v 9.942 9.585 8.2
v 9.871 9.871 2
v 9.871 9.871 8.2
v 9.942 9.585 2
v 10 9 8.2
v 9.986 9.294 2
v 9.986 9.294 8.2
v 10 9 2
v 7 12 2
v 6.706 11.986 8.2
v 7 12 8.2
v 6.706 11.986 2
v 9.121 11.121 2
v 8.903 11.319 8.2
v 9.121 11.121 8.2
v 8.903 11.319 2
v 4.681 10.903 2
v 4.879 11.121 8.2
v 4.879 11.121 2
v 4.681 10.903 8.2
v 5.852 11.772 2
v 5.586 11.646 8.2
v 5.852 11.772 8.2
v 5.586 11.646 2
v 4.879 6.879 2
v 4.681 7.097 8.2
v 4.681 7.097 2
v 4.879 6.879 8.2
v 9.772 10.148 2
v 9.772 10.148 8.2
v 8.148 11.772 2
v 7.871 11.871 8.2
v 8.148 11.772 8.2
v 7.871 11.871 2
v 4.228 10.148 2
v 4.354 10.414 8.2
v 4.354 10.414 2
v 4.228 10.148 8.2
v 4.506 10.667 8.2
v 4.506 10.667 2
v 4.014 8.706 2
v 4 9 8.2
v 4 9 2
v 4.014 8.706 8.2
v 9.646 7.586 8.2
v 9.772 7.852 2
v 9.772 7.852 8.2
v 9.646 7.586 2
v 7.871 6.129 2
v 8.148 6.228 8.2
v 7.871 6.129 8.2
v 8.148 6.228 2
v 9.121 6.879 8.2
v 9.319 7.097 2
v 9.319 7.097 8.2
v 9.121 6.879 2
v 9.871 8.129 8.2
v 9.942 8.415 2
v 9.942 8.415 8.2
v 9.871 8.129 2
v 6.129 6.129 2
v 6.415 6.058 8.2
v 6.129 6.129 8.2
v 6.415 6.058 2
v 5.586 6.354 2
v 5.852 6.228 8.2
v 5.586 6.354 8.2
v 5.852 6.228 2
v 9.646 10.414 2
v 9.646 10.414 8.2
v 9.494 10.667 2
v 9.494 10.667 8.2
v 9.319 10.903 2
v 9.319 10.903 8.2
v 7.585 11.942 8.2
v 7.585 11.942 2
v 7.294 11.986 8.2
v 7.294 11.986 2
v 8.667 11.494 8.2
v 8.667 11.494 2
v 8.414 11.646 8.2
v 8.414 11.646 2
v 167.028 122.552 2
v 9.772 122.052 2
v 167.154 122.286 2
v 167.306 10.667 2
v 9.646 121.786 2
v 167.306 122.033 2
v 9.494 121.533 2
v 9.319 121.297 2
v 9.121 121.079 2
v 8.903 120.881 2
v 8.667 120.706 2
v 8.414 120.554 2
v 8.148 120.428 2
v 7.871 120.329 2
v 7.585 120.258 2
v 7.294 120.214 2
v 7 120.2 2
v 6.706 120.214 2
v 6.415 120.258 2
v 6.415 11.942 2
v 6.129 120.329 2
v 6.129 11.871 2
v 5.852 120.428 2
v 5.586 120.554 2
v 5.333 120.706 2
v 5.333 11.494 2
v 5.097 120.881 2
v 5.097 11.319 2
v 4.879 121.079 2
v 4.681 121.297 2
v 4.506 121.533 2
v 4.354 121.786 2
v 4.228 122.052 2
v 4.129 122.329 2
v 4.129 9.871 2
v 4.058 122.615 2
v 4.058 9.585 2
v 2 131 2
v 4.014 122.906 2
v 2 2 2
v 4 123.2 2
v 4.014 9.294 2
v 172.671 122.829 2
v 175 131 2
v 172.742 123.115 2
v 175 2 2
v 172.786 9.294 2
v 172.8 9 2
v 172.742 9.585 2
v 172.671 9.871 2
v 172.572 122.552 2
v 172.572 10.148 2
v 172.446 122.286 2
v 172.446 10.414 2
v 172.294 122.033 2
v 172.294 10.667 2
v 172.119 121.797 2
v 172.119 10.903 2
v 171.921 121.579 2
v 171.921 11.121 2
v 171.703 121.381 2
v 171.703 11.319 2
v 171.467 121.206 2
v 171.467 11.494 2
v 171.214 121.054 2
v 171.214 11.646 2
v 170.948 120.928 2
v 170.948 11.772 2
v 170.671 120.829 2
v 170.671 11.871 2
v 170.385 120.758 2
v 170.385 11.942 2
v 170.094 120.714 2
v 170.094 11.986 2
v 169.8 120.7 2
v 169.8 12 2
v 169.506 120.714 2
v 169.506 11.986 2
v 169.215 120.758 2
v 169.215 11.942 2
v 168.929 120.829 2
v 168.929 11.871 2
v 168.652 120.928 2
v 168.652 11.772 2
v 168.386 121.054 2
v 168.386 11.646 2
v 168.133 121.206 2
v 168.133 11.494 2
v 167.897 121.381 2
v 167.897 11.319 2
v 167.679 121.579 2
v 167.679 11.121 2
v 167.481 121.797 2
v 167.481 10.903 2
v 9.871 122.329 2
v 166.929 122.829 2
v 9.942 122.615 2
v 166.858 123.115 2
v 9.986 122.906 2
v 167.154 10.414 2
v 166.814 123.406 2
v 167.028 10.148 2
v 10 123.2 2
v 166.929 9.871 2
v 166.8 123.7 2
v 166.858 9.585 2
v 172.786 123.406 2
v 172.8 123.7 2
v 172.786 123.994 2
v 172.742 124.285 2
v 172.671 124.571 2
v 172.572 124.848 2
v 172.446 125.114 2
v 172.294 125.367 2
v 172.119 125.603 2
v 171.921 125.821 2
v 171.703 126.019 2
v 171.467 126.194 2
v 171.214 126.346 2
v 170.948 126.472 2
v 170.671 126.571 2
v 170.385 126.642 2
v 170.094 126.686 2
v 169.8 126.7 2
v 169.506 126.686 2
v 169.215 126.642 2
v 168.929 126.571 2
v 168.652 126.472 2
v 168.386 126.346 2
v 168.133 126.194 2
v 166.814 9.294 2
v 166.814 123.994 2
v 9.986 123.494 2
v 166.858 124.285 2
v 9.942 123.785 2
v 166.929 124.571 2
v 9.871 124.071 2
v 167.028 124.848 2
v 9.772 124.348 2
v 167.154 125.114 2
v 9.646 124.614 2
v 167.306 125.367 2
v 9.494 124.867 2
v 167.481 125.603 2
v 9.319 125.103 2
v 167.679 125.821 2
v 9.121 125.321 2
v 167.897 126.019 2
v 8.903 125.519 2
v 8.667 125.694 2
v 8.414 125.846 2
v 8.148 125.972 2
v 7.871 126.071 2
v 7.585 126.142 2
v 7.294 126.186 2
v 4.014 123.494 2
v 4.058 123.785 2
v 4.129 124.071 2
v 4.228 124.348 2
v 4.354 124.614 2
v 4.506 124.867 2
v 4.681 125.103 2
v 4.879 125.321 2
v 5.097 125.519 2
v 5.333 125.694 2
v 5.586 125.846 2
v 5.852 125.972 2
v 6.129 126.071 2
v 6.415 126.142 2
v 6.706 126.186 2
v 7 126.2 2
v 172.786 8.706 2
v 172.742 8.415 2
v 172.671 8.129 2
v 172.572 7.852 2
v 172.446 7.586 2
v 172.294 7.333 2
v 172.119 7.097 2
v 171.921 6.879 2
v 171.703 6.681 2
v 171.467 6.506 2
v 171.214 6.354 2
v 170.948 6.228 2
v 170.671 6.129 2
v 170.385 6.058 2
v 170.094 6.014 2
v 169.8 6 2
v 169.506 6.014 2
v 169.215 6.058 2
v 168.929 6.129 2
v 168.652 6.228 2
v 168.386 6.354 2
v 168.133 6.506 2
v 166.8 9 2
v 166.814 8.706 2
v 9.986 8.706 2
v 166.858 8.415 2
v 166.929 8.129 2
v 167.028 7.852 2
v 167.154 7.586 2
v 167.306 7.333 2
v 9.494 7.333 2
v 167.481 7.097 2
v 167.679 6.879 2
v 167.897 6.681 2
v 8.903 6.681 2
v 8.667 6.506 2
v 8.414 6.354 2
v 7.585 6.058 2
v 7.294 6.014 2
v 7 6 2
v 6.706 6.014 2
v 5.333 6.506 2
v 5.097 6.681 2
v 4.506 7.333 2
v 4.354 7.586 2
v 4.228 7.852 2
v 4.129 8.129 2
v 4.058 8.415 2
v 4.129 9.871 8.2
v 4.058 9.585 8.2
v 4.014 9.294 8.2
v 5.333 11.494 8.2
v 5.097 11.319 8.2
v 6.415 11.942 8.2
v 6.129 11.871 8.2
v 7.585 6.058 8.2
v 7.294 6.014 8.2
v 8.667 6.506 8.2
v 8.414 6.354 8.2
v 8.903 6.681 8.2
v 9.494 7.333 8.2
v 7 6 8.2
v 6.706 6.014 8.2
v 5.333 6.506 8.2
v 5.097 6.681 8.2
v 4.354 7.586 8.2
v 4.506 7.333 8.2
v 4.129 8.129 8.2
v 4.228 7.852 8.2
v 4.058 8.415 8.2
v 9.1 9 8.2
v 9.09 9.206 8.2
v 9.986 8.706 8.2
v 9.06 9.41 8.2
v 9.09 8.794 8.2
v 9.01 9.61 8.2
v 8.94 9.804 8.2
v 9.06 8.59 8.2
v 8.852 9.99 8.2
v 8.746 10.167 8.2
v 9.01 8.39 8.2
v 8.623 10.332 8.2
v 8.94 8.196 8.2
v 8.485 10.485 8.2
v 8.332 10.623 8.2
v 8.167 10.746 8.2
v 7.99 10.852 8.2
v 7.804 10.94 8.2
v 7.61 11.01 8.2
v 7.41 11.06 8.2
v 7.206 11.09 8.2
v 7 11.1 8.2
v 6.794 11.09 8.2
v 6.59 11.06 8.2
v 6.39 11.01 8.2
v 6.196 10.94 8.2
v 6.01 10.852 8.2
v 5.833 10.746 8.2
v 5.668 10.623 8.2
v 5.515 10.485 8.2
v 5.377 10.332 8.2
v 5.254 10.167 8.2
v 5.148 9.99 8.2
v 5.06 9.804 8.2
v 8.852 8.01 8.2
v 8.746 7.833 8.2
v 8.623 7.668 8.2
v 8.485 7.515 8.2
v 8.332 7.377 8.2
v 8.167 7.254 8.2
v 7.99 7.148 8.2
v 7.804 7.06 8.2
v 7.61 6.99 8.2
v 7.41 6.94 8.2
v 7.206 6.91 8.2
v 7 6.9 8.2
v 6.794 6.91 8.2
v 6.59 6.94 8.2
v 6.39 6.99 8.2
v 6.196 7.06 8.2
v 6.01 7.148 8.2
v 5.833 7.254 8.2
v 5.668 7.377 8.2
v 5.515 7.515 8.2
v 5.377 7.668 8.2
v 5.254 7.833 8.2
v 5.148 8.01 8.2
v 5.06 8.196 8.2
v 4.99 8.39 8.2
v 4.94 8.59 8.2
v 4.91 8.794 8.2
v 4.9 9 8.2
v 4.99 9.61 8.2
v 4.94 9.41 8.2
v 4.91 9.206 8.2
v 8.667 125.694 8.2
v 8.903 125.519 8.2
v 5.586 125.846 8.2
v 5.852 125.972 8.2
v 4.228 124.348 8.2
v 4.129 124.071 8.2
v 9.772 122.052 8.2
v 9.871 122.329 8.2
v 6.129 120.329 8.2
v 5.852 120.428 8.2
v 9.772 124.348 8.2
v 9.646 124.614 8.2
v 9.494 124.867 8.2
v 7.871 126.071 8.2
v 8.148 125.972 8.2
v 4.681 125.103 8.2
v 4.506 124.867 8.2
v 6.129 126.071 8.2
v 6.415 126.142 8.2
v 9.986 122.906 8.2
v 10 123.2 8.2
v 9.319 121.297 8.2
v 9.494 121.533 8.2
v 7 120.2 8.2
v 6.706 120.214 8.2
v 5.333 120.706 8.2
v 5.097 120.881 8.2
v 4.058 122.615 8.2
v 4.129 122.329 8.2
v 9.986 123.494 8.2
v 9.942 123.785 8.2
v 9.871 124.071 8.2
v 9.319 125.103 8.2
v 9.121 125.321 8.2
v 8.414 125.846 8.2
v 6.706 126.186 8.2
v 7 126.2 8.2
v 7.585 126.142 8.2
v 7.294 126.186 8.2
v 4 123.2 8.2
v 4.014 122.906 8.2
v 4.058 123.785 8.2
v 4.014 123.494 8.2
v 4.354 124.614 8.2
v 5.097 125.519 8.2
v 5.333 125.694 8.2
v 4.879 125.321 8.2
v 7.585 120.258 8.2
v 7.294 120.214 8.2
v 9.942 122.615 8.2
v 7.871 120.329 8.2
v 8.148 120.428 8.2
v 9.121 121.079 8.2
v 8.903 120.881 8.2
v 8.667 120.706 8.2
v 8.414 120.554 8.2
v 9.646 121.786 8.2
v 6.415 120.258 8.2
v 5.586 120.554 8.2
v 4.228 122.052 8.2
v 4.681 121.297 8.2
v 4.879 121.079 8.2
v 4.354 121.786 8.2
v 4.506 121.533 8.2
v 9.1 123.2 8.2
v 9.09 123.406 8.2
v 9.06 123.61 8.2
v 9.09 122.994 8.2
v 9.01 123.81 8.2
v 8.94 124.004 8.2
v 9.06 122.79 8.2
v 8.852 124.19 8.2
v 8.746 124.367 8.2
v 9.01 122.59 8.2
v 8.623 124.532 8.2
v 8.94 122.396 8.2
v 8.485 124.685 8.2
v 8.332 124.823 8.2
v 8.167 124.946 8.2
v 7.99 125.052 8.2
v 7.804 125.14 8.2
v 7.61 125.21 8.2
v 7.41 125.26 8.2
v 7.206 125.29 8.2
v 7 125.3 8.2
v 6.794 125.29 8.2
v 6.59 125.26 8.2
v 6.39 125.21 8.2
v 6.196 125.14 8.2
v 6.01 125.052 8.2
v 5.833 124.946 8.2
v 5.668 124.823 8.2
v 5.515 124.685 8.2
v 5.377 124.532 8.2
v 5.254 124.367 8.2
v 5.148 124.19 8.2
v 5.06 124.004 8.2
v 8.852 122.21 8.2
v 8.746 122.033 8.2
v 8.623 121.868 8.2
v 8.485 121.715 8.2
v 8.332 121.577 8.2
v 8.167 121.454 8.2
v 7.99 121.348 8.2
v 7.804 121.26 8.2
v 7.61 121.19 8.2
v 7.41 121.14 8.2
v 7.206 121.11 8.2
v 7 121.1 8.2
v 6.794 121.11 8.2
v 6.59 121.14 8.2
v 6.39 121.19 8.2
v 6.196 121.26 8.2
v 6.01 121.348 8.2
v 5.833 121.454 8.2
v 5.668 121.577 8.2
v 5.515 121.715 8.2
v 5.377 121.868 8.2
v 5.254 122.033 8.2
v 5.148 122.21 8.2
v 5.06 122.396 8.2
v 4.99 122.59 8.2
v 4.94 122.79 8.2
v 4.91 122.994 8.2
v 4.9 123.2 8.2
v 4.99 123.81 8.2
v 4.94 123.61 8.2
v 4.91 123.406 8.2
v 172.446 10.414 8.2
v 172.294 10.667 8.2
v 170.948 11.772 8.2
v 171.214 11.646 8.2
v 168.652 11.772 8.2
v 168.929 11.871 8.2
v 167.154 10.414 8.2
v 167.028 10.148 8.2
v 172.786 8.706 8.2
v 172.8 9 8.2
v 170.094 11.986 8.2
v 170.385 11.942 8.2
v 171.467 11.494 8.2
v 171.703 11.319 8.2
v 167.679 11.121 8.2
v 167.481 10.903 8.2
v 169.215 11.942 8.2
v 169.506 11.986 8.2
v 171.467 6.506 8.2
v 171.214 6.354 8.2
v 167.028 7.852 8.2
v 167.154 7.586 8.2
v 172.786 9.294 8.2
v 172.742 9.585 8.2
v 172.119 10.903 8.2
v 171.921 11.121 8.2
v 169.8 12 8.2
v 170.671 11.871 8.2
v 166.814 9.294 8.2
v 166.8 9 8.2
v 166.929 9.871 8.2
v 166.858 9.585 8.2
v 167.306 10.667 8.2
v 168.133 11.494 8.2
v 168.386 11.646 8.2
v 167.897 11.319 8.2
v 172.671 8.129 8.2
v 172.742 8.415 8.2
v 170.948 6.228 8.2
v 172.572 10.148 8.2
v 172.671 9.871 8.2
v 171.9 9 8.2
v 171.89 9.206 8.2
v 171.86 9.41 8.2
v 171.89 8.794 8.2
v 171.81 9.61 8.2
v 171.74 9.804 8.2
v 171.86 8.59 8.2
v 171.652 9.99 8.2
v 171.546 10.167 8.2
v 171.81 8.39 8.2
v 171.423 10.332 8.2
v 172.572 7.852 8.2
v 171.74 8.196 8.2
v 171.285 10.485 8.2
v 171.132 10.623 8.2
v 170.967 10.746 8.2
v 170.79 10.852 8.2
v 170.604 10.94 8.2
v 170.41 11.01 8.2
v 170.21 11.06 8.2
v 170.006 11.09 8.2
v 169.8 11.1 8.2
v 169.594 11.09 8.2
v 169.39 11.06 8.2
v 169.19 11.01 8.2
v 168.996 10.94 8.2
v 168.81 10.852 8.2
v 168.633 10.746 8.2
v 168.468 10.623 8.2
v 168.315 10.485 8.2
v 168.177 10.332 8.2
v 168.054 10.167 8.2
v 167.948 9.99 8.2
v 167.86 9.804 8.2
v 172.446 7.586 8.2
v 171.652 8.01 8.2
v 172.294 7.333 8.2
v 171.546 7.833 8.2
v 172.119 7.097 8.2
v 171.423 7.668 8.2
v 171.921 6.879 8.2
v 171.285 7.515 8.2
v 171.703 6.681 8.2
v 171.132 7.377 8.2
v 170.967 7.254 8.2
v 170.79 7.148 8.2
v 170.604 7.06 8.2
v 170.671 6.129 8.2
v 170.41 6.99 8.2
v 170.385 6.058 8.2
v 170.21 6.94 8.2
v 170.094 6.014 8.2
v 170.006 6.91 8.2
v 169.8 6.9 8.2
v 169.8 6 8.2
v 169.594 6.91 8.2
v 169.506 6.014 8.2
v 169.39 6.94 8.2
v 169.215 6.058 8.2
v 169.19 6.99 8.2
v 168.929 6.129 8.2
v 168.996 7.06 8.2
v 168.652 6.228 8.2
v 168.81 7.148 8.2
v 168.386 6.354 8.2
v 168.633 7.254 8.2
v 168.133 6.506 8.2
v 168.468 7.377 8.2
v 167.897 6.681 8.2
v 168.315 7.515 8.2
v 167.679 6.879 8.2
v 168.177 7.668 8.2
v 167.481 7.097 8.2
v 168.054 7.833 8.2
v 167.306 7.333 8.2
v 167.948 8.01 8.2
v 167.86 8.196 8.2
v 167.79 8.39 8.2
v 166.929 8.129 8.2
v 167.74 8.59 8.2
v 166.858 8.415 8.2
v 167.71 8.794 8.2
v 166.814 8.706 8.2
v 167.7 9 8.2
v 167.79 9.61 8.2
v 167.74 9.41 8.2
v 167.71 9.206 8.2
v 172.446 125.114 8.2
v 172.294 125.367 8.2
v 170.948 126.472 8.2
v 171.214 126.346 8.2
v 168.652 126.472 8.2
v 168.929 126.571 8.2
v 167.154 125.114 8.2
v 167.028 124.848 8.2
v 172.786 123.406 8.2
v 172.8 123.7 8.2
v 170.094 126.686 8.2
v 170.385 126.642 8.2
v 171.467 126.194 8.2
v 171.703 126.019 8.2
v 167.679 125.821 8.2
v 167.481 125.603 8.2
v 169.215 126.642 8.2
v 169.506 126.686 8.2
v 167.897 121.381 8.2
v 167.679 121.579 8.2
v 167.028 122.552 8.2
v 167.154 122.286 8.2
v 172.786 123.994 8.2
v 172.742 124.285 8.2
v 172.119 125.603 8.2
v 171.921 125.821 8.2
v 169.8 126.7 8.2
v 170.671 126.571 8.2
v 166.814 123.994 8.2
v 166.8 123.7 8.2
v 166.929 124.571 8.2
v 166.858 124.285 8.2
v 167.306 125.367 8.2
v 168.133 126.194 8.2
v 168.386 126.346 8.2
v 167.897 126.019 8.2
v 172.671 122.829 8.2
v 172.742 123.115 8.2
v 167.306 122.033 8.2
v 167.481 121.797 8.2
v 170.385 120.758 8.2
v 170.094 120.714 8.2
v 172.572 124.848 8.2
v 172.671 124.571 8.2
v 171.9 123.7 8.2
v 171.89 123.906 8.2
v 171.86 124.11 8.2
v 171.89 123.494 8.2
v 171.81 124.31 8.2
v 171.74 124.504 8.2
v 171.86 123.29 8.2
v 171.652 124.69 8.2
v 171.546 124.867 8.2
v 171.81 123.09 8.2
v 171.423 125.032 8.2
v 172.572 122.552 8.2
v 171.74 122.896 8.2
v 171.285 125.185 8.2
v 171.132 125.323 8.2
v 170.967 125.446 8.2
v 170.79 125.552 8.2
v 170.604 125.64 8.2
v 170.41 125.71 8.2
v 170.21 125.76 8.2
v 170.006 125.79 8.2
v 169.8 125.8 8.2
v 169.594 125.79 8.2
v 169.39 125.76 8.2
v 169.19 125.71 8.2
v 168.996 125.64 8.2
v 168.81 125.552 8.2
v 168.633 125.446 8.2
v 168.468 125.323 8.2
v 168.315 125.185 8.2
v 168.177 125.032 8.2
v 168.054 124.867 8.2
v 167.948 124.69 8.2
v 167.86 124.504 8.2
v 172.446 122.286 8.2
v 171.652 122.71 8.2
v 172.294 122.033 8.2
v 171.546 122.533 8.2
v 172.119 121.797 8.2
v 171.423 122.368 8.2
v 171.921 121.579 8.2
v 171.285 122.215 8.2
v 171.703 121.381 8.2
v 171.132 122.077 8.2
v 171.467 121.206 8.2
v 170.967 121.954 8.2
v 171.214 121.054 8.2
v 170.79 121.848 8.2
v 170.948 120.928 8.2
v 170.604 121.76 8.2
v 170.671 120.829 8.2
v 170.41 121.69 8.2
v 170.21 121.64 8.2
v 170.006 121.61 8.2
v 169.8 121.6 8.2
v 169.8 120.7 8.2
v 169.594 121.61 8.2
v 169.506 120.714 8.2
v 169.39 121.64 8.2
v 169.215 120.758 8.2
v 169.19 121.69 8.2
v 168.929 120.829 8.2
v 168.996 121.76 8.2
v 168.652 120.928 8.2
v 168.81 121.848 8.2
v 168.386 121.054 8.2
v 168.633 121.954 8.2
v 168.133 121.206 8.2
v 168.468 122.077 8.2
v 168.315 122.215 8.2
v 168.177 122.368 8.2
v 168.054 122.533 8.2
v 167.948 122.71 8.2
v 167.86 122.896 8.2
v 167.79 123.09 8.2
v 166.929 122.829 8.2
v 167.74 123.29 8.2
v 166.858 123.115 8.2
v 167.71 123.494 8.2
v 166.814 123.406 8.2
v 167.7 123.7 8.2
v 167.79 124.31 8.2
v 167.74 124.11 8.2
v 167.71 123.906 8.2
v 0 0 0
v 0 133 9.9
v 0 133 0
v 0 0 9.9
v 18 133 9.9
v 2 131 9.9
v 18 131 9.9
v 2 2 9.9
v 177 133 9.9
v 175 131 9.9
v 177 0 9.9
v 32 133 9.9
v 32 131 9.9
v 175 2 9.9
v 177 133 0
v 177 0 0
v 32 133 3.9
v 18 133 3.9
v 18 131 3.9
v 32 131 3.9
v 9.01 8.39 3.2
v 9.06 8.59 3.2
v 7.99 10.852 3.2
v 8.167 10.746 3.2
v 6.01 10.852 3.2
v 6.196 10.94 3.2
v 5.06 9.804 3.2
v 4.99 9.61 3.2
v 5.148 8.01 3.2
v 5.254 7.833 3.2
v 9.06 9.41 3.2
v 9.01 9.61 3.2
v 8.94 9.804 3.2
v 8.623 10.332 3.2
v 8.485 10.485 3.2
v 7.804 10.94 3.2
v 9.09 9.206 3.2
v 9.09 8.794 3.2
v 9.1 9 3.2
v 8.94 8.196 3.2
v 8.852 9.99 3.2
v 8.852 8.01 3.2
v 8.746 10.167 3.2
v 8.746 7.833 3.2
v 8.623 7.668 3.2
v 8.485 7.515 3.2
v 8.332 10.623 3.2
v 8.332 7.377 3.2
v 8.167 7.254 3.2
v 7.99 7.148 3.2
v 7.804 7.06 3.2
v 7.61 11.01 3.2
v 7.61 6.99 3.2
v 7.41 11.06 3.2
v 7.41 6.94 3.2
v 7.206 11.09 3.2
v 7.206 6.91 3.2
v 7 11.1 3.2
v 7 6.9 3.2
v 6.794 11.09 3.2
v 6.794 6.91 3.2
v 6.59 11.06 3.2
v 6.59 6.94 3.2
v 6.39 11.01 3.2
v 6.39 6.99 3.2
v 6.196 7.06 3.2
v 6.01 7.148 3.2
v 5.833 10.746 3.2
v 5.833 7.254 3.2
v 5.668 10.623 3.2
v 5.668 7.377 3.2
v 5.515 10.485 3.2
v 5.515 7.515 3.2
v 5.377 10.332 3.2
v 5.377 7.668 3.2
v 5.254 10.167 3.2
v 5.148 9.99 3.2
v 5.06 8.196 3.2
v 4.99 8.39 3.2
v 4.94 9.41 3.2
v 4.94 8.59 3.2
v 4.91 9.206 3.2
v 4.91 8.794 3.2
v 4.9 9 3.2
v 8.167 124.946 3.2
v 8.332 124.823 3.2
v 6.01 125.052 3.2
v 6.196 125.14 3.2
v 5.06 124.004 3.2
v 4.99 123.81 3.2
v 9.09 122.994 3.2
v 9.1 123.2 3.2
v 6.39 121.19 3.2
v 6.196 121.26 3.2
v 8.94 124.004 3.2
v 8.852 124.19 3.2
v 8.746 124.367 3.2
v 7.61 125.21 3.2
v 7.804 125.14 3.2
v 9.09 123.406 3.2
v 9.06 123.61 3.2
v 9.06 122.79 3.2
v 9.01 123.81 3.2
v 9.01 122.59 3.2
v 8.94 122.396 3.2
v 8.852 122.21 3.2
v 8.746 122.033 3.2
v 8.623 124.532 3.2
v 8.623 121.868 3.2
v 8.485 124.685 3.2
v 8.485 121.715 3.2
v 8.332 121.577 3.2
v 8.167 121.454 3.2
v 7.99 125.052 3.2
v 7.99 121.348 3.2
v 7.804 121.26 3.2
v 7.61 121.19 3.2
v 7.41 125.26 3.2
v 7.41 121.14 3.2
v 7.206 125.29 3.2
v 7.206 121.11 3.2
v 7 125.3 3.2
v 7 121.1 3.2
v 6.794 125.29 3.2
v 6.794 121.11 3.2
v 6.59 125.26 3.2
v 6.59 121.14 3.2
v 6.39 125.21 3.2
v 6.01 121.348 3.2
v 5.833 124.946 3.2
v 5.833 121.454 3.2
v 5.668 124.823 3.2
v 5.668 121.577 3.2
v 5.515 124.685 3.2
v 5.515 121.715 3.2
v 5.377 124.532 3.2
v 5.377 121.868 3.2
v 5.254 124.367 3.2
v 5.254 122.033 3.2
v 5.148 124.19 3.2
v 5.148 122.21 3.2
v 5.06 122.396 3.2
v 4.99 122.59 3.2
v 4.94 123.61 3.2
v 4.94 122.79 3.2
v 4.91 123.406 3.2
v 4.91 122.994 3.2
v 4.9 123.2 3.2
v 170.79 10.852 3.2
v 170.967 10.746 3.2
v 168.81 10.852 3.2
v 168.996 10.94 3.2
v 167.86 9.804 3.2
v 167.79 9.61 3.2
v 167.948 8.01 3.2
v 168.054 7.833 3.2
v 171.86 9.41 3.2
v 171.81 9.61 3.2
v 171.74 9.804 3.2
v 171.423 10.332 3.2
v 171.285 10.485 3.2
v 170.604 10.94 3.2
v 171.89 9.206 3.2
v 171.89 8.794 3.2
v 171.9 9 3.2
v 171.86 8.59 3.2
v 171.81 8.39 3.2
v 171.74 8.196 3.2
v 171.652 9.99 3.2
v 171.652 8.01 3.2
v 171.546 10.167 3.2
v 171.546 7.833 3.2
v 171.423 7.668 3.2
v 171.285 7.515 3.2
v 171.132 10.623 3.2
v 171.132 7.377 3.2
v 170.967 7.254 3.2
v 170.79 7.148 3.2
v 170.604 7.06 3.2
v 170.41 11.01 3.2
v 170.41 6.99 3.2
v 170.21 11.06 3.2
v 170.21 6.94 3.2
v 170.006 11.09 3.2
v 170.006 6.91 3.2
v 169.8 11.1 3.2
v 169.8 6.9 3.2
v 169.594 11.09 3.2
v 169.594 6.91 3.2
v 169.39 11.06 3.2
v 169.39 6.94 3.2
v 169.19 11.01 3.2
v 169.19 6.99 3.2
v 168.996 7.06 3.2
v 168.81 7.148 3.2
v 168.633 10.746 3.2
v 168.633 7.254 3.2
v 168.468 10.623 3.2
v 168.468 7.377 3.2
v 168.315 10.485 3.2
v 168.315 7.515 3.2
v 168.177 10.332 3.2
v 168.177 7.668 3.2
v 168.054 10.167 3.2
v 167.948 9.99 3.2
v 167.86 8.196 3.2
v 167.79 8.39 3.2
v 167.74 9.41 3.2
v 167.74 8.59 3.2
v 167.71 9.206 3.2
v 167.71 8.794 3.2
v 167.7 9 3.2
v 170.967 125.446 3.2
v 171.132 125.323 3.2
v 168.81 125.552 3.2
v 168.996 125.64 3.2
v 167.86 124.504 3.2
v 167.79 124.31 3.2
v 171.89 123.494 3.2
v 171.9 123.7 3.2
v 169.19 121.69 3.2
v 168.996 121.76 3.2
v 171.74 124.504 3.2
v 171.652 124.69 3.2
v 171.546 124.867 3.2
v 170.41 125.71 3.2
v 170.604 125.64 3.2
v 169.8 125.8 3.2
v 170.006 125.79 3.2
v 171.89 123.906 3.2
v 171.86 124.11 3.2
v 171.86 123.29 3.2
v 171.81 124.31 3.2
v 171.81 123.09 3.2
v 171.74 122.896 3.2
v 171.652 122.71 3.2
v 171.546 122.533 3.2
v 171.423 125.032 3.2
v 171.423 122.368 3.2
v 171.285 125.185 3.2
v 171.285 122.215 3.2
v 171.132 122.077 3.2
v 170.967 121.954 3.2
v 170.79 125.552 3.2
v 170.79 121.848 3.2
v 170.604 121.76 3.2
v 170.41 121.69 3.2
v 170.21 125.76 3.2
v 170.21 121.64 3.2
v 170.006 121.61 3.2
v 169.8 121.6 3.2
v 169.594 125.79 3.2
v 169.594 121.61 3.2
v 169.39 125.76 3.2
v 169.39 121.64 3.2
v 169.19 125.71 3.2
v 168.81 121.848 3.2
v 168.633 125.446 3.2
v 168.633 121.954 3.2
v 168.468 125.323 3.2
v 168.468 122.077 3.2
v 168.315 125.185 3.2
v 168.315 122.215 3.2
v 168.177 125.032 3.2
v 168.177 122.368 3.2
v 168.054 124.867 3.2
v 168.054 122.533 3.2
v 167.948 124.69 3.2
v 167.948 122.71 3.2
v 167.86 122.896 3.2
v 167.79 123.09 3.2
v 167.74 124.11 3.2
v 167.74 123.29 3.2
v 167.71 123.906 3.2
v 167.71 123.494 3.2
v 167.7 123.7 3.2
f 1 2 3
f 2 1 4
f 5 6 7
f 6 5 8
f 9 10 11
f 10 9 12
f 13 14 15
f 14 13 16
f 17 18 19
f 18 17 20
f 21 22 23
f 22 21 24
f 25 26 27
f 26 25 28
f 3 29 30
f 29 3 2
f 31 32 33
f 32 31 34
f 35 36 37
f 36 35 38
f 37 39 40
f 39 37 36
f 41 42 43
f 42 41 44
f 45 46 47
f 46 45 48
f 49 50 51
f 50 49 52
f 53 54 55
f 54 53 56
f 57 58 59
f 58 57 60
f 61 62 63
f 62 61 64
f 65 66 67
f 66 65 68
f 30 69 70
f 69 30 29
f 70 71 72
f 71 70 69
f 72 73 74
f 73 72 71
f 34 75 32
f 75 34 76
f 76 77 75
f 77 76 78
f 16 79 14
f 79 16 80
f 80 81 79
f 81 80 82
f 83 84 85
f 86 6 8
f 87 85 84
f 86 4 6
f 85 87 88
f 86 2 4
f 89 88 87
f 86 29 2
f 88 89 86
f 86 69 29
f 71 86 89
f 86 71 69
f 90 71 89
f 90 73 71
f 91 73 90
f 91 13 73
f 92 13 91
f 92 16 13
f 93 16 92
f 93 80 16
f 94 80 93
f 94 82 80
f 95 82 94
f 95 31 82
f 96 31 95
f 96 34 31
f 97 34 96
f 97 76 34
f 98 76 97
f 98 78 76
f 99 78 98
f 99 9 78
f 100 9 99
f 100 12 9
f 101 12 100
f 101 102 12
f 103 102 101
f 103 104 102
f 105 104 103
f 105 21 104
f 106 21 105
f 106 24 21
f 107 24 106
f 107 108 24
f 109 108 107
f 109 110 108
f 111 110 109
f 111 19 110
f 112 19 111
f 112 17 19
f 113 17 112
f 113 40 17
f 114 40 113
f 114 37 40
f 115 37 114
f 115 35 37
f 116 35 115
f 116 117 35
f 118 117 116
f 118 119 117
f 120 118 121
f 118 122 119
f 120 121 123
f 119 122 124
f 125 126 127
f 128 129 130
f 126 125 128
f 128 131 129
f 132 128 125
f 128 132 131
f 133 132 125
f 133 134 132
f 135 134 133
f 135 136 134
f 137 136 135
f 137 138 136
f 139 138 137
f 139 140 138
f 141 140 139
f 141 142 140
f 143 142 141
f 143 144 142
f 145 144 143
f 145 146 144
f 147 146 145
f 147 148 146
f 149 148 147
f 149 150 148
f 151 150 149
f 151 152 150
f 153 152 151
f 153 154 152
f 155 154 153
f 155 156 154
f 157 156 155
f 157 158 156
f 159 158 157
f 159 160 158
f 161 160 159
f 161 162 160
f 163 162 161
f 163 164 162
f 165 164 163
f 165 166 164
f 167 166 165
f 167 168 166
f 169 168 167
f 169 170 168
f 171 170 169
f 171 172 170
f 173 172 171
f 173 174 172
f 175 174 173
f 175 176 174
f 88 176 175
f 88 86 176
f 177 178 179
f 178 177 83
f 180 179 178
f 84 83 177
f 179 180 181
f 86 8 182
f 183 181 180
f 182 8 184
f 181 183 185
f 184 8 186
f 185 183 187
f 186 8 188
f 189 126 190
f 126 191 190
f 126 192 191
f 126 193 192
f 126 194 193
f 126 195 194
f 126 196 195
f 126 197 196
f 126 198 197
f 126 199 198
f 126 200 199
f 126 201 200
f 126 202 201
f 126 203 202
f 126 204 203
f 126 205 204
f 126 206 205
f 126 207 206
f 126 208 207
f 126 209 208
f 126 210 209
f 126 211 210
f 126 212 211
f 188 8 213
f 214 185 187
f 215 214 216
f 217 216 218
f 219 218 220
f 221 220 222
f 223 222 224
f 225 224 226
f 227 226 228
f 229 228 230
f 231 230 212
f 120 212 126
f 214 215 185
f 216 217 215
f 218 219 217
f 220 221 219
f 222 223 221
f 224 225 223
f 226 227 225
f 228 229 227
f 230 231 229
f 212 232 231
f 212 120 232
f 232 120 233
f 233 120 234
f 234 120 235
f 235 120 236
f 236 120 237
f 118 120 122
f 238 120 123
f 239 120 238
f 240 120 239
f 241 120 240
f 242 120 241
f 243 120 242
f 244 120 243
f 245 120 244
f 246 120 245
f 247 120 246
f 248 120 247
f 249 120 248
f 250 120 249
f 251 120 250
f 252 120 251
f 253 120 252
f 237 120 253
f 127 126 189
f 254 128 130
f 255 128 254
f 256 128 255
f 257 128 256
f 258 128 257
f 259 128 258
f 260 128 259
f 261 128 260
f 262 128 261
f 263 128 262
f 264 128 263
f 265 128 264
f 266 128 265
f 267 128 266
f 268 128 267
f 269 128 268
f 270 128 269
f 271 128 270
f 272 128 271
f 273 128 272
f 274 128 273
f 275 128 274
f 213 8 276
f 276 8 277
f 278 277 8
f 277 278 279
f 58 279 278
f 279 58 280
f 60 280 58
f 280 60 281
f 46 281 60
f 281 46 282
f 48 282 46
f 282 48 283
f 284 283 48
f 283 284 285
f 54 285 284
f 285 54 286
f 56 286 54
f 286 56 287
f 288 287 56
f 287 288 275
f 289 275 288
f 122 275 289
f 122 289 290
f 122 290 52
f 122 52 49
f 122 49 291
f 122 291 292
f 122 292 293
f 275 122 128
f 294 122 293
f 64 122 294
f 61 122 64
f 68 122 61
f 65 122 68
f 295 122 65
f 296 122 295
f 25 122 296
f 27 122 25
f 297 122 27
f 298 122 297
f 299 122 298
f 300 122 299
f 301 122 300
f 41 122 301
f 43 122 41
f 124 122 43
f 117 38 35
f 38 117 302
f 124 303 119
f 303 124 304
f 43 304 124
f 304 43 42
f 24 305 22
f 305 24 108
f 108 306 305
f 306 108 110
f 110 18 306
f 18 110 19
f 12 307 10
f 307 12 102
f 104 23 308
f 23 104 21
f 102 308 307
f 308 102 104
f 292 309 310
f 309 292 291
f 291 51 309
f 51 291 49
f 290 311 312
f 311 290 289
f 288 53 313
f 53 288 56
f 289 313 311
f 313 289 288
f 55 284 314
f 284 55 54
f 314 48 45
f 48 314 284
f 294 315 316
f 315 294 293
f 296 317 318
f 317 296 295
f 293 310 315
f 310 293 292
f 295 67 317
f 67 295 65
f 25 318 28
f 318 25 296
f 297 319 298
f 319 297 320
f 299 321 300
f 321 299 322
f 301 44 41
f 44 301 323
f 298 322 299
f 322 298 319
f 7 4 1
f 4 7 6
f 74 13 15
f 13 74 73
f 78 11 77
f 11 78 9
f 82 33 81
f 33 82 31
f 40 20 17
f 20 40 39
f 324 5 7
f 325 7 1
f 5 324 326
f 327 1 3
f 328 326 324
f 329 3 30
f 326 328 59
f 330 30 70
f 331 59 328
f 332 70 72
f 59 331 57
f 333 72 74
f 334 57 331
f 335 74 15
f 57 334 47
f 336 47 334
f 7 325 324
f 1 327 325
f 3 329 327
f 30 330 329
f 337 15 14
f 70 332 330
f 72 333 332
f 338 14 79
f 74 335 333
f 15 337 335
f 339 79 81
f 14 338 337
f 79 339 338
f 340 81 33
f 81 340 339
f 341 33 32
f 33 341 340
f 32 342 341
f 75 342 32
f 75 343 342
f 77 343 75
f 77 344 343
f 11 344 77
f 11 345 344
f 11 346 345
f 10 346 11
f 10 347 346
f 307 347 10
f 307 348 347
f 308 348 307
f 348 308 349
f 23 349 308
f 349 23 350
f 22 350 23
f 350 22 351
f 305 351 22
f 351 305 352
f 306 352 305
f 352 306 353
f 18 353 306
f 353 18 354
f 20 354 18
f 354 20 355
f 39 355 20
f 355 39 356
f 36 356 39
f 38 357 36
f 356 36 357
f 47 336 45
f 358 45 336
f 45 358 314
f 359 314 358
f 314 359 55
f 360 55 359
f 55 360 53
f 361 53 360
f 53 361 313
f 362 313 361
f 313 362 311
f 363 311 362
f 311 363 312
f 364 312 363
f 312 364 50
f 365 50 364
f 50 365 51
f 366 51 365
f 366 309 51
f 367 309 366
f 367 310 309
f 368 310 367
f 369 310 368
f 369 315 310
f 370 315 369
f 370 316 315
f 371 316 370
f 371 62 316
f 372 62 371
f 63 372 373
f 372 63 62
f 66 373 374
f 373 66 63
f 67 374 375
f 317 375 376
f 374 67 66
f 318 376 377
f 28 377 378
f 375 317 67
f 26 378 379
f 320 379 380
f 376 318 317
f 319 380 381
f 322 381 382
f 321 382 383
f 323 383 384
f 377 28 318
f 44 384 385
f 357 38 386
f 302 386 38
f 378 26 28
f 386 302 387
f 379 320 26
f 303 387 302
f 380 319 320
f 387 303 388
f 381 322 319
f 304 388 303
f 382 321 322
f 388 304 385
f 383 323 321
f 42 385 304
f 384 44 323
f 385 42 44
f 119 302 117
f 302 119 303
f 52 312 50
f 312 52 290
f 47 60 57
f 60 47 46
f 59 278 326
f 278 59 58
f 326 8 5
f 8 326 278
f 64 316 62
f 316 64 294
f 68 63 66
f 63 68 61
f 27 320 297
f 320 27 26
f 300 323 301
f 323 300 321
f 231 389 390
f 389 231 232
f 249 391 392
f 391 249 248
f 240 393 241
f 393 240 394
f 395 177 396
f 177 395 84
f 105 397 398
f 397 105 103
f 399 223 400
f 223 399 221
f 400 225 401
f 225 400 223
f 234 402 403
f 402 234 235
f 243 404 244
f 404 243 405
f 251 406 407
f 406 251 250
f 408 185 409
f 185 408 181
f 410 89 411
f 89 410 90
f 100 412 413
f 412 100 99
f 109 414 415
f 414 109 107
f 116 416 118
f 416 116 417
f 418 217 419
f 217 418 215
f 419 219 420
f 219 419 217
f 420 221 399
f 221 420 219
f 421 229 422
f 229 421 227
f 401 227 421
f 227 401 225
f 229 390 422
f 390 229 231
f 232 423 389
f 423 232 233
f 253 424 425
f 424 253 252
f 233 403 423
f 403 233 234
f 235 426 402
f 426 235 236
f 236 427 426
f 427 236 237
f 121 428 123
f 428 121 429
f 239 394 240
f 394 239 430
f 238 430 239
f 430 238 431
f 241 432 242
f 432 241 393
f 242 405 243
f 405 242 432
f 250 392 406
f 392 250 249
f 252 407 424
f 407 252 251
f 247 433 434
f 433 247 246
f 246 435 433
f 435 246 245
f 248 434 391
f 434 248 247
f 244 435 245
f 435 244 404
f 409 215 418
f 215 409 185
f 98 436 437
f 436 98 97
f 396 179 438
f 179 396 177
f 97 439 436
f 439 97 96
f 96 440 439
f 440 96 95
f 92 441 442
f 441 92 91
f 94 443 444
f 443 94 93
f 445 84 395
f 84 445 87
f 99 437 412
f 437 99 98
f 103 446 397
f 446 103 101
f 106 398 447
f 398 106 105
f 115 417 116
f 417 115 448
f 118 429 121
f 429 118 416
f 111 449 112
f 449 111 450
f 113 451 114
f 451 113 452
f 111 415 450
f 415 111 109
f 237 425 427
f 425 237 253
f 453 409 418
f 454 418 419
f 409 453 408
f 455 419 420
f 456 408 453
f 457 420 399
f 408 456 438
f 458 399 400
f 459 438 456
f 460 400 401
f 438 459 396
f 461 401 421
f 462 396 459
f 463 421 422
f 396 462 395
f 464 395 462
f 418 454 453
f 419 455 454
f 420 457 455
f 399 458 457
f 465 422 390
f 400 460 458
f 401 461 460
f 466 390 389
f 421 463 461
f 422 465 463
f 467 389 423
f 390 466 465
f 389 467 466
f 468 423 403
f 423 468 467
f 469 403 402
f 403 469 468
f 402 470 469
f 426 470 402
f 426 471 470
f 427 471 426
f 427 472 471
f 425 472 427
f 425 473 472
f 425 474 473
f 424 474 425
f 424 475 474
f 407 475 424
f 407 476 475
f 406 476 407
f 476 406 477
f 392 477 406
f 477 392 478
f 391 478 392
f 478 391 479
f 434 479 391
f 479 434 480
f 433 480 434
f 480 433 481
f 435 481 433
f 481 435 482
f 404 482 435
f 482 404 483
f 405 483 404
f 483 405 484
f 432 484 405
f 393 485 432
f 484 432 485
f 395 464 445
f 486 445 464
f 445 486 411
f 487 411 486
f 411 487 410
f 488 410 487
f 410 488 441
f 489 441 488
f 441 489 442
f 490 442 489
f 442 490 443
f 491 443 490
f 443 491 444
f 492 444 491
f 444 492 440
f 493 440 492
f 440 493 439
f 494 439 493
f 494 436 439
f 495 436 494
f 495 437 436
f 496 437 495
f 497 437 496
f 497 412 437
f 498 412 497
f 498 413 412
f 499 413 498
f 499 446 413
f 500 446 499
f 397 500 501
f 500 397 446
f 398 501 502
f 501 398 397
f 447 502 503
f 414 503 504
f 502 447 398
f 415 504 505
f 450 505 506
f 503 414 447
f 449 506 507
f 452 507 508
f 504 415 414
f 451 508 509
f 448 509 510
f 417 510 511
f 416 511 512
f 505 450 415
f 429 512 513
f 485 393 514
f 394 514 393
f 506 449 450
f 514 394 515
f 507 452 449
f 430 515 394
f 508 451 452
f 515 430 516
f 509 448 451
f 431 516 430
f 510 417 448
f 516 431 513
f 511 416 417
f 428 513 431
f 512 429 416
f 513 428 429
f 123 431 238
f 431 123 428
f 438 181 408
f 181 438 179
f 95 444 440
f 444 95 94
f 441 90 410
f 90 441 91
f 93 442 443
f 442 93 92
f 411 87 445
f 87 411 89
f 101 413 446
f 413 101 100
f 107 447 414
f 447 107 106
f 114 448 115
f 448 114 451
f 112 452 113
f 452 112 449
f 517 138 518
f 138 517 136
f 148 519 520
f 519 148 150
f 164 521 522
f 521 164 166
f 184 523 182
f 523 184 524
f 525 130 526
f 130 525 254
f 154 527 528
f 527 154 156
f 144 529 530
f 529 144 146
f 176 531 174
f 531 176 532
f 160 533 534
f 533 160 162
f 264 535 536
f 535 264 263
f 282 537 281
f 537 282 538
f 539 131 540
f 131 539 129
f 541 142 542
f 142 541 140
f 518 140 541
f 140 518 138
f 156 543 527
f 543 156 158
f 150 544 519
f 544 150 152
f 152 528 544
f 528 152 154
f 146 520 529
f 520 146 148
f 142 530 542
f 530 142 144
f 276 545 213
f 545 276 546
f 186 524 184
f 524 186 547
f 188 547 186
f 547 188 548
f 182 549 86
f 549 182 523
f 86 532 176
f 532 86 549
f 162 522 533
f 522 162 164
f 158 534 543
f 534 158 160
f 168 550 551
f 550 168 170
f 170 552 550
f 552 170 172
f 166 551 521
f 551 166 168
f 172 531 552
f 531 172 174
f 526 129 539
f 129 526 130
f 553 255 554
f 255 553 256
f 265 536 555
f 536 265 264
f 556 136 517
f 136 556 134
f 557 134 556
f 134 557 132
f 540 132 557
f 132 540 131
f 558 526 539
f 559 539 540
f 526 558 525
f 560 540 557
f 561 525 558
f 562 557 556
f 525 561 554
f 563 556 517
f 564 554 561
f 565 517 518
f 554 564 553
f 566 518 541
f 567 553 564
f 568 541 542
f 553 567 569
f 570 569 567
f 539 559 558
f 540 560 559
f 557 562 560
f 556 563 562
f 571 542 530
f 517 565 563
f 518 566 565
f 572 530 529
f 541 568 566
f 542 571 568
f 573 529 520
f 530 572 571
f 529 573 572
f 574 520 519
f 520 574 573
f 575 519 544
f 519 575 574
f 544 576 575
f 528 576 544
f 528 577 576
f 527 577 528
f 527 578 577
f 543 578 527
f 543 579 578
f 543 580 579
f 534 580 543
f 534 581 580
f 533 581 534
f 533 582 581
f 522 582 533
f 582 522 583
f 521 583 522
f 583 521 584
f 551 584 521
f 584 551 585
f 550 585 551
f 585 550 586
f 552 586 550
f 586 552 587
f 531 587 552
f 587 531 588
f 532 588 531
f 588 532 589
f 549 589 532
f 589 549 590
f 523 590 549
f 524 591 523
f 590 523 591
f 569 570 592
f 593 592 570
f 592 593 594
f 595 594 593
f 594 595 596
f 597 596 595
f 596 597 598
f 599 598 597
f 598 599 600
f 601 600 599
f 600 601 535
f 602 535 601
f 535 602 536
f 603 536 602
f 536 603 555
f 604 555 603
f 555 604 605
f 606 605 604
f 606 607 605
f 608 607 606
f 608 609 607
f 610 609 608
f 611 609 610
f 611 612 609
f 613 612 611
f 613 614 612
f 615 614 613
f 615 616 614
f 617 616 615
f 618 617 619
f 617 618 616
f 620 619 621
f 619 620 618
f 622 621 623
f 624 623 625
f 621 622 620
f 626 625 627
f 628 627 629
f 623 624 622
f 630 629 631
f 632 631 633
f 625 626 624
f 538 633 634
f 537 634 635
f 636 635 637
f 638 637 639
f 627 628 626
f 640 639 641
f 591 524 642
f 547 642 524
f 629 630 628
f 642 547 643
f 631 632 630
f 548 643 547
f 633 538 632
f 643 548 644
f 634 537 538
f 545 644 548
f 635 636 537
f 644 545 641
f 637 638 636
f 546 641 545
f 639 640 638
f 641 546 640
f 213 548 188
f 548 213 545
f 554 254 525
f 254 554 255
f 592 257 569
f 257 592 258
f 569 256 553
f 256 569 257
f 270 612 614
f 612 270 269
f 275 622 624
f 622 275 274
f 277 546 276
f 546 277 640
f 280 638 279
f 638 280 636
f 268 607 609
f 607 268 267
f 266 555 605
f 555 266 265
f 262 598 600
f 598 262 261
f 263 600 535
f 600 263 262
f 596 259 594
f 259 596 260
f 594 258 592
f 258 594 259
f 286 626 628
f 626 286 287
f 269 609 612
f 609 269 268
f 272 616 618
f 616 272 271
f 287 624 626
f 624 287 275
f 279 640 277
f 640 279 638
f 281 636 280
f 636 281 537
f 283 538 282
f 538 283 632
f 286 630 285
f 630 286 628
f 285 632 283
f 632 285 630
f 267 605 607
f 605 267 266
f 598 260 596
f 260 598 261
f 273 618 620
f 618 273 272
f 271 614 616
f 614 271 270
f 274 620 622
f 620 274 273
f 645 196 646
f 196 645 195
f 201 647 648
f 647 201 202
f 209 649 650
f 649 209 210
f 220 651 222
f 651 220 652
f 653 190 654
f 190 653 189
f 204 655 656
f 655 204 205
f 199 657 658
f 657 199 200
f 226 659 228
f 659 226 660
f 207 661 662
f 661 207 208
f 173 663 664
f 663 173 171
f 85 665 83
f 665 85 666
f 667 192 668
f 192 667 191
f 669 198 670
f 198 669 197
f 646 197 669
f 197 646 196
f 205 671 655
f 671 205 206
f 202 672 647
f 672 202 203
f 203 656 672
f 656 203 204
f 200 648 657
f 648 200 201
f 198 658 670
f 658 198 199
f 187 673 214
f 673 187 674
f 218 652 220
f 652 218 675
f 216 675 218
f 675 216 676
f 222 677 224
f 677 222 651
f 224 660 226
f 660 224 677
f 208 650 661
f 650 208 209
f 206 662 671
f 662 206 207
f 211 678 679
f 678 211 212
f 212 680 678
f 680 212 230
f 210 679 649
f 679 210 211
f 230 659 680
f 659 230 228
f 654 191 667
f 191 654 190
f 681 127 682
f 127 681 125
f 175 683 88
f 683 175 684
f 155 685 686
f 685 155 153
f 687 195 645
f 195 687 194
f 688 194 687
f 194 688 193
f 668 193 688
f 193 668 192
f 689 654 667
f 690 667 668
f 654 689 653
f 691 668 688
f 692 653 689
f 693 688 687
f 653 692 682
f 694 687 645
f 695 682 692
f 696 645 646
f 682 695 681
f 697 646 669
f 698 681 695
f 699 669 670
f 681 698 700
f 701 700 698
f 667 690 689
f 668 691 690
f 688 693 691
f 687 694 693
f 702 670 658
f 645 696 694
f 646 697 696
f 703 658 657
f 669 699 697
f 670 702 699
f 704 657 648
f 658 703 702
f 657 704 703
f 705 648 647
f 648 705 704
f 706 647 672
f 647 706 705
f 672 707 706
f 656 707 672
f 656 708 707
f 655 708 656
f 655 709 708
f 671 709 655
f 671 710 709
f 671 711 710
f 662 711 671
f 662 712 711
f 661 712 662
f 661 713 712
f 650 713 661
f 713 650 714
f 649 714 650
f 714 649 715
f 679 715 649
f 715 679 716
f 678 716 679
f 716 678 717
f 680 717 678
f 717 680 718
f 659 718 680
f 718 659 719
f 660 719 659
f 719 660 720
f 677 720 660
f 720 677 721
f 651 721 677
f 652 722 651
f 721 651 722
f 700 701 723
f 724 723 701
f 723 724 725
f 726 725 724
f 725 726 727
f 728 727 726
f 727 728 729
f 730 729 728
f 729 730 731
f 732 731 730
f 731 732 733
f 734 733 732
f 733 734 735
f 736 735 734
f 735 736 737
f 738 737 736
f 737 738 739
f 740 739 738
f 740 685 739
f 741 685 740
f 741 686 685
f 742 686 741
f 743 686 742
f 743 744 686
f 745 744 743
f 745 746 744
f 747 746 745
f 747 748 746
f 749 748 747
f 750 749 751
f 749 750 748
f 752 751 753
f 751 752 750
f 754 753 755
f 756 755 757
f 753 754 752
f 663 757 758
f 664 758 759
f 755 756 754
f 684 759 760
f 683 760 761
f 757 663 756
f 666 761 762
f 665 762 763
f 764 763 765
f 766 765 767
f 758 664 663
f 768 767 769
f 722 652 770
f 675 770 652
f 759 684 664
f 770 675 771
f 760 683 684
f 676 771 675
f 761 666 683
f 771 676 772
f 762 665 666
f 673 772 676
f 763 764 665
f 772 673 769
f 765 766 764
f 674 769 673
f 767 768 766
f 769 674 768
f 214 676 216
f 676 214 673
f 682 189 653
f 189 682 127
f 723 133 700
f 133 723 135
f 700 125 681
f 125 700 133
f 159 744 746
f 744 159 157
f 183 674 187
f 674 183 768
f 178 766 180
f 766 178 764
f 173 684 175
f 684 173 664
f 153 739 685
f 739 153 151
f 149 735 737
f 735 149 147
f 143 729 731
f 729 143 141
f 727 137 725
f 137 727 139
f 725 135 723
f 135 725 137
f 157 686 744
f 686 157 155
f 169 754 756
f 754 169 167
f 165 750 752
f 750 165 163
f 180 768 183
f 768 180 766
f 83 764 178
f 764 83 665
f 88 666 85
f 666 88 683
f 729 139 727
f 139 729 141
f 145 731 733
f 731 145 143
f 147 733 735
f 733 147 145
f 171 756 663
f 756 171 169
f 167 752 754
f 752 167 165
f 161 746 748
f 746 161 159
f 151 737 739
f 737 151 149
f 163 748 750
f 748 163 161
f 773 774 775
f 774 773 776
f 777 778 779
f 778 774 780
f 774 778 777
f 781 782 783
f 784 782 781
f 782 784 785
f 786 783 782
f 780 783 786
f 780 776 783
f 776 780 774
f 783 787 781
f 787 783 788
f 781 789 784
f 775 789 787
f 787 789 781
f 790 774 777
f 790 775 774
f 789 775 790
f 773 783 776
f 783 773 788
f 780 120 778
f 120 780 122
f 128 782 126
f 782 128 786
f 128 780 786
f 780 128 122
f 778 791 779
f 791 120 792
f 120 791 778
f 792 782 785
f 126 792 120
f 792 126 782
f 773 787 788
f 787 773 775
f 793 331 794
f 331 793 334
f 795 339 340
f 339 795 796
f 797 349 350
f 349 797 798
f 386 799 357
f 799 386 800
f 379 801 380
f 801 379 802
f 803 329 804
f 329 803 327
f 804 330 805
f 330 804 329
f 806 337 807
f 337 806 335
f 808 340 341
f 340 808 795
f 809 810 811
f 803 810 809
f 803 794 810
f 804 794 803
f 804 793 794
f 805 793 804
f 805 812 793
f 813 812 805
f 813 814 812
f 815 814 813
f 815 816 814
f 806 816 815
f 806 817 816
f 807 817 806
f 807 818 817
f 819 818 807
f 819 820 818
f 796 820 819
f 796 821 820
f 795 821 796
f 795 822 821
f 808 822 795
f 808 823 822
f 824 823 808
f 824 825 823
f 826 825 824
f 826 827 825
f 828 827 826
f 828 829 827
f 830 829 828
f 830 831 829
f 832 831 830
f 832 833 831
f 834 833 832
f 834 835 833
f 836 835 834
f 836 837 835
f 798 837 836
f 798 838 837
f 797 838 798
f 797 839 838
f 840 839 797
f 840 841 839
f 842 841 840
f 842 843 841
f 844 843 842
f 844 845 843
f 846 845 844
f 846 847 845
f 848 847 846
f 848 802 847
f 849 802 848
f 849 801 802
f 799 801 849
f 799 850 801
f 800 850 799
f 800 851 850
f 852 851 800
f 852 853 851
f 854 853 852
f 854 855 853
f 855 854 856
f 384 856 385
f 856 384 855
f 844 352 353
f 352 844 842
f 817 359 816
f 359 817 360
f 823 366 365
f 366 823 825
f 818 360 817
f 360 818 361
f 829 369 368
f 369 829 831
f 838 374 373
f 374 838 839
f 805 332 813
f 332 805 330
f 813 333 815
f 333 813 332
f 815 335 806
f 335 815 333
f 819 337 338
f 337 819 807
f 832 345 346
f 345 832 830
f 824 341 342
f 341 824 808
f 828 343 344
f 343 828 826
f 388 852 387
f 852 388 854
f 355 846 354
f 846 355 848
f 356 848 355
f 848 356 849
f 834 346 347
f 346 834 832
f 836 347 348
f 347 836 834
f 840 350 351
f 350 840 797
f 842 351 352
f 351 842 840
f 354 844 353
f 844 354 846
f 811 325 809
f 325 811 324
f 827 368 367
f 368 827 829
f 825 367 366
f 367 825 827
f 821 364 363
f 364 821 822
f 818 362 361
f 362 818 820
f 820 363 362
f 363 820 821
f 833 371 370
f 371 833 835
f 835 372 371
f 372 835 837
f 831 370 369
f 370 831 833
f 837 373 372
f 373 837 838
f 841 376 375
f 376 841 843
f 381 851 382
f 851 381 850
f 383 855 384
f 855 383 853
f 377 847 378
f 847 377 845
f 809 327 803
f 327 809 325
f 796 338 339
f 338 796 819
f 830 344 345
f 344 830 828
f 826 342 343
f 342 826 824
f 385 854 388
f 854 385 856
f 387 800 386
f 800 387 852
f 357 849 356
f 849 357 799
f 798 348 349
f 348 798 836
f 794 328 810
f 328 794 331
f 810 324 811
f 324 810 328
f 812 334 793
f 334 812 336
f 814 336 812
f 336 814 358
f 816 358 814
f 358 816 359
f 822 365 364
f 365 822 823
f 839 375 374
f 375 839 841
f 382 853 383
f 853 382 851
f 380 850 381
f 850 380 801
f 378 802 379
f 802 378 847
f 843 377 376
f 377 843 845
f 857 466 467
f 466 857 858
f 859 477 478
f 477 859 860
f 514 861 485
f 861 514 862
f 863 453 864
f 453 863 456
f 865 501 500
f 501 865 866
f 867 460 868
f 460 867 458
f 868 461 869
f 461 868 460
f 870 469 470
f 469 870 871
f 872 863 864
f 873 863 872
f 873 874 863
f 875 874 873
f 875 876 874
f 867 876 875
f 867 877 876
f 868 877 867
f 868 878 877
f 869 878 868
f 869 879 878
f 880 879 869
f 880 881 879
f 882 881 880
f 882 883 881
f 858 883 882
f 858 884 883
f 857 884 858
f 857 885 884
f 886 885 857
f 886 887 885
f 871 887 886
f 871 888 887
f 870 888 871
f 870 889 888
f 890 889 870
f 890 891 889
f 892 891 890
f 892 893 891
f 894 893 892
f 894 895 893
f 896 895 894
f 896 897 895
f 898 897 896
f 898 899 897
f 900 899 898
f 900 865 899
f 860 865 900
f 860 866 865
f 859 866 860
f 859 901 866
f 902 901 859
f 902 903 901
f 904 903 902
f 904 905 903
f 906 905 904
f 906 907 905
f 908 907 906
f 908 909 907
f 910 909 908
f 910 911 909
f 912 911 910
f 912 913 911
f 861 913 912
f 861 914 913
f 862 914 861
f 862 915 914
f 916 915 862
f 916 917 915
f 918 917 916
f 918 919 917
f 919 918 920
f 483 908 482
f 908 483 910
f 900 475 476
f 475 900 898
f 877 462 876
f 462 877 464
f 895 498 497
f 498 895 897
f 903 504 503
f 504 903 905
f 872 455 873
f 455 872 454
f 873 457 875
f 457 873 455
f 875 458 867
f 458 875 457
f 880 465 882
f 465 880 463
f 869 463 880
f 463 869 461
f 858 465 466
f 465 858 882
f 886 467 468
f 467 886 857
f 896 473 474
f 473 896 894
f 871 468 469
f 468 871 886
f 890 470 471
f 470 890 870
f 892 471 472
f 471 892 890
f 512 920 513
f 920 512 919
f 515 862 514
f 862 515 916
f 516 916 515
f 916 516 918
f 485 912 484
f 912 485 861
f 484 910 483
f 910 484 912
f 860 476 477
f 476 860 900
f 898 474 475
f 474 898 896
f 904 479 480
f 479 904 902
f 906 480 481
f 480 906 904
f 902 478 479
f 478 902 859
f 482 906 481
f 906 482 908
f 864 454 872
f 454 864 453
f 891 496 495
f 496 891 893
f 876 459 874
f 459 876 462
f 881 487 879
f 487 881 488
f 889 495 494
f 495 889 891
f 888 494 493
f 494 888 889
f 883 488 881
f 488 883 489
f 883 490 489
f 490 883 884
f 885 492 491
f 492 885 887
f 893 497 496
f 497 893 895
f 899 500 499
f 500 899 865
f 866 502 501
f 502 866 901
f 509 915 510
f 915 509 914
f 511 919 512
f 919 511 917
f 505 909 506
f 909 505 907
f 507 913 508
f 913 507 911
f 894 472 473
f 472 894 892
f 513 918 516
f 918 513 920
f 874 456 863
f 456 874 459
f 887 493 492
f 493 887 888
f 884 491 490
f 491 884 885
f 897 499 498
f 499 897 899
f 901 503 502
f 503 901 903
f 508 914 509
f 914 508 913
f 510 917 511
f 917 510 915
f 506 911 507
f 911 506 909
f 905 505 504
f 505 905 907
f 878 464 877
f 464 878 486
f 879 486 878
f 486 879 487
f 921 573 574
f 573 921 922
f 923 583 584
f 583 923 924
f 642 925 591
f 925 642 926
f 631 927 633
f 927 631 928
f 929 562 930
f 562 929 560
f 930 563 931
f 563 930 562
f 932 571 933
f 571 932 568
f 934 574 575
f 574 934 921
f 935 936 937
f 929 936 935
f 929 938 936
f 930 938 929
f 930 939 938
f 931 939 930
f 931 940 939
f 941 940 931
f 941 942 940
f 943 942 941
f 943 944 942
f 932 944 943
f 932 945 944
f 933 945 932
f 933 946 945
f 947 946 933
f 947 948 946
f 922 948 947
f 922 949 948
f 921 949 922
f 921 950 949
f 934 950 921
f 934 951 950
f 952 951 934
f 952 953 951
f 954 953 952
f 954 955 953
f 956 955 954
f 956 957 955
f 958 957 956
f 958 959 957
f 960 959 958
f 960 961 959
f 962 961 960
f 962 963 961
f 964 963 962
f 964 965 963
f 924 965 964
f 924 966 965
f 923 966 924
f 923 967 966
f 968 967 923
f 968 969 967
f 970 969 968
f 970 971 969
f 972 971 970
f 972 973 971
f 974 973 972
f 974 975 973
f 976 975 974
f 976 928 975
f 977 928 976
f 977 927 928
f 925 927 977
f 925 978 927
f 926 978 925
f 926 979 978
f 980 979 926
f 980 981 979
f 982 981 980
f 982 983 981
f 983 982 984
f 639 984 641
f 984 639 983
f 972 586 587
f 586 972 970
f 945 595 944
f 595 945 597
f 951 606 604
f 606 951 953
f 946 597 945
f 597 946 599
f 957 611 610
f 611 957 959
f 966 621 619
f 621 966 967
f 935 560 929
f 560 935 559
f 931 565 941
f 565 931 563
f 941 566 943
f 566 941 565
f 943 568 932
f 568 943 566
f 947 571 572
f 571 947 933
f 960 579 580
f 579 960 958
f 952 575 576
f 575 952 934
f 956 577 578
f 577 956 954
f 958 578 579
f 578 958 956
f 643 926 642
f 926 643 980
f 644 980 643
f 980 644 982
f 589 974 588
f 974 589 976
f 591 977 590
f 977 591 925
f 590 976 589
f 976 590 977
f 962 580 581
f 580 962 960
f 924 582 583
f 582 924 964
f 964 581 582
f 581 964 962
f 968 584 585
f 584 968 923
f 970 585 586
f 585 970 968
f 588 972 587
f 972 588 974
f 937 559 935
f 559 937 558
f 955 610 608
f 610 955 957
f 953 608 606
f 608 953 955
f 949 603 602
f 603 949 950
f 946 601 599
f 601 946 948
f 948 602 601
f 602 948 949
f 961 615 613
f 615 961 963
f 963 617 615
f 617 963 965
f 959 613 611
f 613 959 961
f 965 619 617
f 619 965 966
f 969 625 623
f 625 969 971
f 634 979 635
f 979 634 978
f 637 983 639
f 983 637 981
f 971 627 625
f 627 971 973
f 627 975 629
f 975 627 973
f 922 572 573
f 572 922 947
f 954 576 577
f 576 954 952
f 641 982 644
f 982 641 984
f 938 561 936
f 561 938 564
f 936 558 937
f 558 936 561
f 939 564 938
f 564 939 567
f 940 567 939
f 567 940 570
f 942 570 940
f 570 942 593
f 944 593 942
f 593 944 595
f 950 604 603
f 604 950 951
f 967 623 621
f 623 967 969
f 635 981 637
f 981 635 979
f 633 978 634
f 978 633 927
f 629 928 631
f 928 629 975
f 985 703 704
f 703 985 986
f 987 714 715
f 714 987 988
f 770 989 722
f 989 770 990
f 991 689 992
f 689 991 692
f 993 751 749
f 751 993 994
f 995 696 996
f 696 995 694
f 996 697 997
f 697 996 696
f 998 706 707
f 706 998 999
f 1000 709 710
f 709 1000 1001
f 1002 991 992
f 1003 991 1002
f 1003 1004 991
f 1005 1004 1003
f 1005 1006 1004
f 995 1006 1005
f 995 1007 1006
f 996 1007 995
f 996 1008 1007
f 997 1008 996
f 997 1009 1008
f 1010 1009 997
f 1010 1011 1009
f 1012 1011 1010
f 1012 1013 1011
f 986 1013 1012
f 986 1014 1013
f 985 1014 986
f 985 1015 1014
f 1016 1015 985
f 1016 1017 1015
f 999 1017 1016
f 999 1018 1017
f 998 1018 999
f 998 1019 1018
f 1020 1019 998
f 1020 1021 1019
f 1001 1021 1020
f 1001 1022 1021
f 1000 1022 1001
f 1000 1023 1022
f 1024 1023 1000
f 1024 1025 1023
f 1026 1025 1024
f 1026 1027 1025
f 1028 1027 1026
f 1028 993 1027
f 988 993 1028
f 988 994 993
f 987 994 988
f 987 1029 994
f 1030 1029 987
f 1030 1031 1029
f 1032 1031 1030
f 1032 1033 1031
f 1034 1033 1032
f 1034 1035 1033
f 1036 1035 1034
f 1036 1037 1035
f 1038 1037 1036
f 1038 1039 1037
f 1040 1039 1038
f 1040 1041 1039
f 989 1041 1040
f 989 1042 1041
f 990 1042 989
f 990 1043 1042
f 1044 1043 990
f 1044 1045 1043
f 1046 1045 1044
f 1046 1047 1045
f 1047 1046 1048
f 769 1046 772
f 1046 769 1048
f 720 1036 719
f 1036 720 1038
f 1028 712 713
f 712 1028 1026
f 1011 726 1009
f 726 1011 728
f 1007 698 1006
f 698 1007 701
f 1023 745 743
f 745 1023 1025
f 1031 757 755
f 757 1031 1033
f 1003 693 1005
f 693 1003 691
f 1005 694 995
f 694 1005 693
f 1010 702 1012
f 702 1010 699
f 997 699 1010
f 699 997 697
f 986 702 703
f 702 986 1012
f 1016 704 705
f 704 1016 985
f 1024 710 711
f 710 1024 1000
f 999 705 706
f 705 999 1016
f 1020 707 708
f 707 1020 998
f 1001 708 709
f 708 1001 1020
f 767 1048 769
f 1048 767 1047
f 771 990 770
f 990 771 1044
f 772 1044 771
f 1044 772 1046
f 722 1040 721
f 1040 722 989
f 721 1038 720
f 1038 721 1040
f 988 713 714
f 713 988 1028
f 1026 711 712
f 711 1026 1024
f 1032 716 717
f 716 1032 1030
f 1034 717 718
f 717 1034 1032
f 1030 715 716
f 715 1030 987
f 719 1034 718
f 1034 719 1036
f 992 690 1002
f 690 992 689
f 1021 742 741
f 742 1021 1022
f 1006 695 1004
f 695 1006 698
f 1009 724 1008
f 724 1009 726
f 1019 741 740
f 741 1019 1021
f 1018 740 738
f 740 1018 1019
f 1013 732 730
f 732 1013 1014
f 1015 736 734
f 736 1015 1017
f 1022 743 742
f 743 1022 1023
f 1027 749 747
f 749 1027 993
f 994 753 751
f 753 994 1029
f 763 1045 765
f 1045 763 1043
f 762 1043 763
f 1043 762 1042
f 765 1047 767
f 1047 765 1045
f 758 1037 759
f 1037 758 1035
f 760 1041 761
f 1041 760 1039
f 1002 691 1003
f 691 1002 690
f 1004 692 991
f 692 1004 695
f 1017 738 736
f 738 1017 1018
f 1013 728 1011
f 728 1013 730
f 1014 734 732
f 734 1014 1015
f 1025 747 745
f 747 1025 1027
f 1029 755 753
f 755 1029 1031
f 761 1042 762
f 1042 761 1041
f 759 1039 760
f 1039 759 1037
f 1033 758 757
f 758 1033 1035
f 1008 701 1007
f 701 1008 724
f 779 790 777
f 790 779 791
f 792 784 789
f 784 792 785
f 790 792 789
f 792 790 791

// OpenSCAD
// ==========================================
// НИЖНЯЯ КРЫШКА (дно, бобышки, бортик, вырез под разъём питания)
// ==========================================

brim_correction = 2;

pcb_w = 173.0;
pcb_h = 125.0 + 4;
margin = 2.0;
case_w = pcb_w + margin*2;
case_h = pcb_h + margin*2;

// Позиции крепёжных отверстий
hole_LU = [5, 7.0];
hole_LD = [5, pcb_h - 7.3 - brim_correction + 1.5];
hole_RU = [pcb_w - 5.2, 7.0];
hole_RD = [pcb_w - 5.2, pcb_h - 7.3];  

holes_left  = [hole_LU, hole_LD];
holes_right = [hole_RU, hole_RD];
all_holes = concat(holes_left, holes_right);

// Основные размеры
plate_thick = 2.0;
boss_dia = 6.0;

// Параметры втулок
insert_outer_dia = 4.2;
insert_length = 5;        // 3/4/5/6 мм
floor_reserve = 1.2;

boss_height = insert_length + floor_reserve;   // 6.2 мм

// Стенки (бортик)
wall_thick = 2.0;
wall_height = boss_height + 1.7;   // 7.9 мм

// Вырез под разъём питания (верхняя стенка)
cutout_x_start = 18;
cutout_x_end = 32;
cutout_depth = 6;  // высота выреза от верхнего края стенки

$fn = 64;

module bottom_cover() {
    difference() {
        union() {
            // Сплошное дно
            cube([case_w, case_h, plate_thick]);
            
            // Бобышки
            for (pos = all_holes) {
                x = margin + pos[0];
                y = margin + pos[1];
                translate([x, y, plate_thick])
                    cylinder(d = boss_dia, h = boss_height);
            }
            
            // Стенки по периметру (бортик)
            translate([0, 0, plate_thick]) {
                difference() {
                    cube([case_w, case_h, wall_height]);
                    translate([wall_thick, wall_thick, -0.01])
                        cube([case_w - 2*wall_thick, case_h - 2*wall_thick, wall_height + 0.02]);
                }
            }
        }
        
        // Глухие отверстия под втулки
        for (pos = all_holes) {
            x = margin + pos[0];
            y = margin + pos[1];
            translate([x, y, plate_thick + boss_height - insert_length])
                cylinder(d = insert_outer_dia, h = insert_length);
        }
        
        // Вырез в верхней стенке (Y = case_h) для разъёма питания
        translate([
            cutout_x_start,
            case_h - wall_thick,                       // внутренняя грань стенки
            plate_thick + wall_height - cutout_depth   // верх минус глубина выреза
        ])
        cube([
            cutout_x_end - cutout_x_start,             // ширина
            wall_thick + 0.01,                         // сквозь всю толщину стенки
            cutout_depth + 0.01                        // высота с небольшим перекрытием
        ]);
    }
}

bottom_cover();
